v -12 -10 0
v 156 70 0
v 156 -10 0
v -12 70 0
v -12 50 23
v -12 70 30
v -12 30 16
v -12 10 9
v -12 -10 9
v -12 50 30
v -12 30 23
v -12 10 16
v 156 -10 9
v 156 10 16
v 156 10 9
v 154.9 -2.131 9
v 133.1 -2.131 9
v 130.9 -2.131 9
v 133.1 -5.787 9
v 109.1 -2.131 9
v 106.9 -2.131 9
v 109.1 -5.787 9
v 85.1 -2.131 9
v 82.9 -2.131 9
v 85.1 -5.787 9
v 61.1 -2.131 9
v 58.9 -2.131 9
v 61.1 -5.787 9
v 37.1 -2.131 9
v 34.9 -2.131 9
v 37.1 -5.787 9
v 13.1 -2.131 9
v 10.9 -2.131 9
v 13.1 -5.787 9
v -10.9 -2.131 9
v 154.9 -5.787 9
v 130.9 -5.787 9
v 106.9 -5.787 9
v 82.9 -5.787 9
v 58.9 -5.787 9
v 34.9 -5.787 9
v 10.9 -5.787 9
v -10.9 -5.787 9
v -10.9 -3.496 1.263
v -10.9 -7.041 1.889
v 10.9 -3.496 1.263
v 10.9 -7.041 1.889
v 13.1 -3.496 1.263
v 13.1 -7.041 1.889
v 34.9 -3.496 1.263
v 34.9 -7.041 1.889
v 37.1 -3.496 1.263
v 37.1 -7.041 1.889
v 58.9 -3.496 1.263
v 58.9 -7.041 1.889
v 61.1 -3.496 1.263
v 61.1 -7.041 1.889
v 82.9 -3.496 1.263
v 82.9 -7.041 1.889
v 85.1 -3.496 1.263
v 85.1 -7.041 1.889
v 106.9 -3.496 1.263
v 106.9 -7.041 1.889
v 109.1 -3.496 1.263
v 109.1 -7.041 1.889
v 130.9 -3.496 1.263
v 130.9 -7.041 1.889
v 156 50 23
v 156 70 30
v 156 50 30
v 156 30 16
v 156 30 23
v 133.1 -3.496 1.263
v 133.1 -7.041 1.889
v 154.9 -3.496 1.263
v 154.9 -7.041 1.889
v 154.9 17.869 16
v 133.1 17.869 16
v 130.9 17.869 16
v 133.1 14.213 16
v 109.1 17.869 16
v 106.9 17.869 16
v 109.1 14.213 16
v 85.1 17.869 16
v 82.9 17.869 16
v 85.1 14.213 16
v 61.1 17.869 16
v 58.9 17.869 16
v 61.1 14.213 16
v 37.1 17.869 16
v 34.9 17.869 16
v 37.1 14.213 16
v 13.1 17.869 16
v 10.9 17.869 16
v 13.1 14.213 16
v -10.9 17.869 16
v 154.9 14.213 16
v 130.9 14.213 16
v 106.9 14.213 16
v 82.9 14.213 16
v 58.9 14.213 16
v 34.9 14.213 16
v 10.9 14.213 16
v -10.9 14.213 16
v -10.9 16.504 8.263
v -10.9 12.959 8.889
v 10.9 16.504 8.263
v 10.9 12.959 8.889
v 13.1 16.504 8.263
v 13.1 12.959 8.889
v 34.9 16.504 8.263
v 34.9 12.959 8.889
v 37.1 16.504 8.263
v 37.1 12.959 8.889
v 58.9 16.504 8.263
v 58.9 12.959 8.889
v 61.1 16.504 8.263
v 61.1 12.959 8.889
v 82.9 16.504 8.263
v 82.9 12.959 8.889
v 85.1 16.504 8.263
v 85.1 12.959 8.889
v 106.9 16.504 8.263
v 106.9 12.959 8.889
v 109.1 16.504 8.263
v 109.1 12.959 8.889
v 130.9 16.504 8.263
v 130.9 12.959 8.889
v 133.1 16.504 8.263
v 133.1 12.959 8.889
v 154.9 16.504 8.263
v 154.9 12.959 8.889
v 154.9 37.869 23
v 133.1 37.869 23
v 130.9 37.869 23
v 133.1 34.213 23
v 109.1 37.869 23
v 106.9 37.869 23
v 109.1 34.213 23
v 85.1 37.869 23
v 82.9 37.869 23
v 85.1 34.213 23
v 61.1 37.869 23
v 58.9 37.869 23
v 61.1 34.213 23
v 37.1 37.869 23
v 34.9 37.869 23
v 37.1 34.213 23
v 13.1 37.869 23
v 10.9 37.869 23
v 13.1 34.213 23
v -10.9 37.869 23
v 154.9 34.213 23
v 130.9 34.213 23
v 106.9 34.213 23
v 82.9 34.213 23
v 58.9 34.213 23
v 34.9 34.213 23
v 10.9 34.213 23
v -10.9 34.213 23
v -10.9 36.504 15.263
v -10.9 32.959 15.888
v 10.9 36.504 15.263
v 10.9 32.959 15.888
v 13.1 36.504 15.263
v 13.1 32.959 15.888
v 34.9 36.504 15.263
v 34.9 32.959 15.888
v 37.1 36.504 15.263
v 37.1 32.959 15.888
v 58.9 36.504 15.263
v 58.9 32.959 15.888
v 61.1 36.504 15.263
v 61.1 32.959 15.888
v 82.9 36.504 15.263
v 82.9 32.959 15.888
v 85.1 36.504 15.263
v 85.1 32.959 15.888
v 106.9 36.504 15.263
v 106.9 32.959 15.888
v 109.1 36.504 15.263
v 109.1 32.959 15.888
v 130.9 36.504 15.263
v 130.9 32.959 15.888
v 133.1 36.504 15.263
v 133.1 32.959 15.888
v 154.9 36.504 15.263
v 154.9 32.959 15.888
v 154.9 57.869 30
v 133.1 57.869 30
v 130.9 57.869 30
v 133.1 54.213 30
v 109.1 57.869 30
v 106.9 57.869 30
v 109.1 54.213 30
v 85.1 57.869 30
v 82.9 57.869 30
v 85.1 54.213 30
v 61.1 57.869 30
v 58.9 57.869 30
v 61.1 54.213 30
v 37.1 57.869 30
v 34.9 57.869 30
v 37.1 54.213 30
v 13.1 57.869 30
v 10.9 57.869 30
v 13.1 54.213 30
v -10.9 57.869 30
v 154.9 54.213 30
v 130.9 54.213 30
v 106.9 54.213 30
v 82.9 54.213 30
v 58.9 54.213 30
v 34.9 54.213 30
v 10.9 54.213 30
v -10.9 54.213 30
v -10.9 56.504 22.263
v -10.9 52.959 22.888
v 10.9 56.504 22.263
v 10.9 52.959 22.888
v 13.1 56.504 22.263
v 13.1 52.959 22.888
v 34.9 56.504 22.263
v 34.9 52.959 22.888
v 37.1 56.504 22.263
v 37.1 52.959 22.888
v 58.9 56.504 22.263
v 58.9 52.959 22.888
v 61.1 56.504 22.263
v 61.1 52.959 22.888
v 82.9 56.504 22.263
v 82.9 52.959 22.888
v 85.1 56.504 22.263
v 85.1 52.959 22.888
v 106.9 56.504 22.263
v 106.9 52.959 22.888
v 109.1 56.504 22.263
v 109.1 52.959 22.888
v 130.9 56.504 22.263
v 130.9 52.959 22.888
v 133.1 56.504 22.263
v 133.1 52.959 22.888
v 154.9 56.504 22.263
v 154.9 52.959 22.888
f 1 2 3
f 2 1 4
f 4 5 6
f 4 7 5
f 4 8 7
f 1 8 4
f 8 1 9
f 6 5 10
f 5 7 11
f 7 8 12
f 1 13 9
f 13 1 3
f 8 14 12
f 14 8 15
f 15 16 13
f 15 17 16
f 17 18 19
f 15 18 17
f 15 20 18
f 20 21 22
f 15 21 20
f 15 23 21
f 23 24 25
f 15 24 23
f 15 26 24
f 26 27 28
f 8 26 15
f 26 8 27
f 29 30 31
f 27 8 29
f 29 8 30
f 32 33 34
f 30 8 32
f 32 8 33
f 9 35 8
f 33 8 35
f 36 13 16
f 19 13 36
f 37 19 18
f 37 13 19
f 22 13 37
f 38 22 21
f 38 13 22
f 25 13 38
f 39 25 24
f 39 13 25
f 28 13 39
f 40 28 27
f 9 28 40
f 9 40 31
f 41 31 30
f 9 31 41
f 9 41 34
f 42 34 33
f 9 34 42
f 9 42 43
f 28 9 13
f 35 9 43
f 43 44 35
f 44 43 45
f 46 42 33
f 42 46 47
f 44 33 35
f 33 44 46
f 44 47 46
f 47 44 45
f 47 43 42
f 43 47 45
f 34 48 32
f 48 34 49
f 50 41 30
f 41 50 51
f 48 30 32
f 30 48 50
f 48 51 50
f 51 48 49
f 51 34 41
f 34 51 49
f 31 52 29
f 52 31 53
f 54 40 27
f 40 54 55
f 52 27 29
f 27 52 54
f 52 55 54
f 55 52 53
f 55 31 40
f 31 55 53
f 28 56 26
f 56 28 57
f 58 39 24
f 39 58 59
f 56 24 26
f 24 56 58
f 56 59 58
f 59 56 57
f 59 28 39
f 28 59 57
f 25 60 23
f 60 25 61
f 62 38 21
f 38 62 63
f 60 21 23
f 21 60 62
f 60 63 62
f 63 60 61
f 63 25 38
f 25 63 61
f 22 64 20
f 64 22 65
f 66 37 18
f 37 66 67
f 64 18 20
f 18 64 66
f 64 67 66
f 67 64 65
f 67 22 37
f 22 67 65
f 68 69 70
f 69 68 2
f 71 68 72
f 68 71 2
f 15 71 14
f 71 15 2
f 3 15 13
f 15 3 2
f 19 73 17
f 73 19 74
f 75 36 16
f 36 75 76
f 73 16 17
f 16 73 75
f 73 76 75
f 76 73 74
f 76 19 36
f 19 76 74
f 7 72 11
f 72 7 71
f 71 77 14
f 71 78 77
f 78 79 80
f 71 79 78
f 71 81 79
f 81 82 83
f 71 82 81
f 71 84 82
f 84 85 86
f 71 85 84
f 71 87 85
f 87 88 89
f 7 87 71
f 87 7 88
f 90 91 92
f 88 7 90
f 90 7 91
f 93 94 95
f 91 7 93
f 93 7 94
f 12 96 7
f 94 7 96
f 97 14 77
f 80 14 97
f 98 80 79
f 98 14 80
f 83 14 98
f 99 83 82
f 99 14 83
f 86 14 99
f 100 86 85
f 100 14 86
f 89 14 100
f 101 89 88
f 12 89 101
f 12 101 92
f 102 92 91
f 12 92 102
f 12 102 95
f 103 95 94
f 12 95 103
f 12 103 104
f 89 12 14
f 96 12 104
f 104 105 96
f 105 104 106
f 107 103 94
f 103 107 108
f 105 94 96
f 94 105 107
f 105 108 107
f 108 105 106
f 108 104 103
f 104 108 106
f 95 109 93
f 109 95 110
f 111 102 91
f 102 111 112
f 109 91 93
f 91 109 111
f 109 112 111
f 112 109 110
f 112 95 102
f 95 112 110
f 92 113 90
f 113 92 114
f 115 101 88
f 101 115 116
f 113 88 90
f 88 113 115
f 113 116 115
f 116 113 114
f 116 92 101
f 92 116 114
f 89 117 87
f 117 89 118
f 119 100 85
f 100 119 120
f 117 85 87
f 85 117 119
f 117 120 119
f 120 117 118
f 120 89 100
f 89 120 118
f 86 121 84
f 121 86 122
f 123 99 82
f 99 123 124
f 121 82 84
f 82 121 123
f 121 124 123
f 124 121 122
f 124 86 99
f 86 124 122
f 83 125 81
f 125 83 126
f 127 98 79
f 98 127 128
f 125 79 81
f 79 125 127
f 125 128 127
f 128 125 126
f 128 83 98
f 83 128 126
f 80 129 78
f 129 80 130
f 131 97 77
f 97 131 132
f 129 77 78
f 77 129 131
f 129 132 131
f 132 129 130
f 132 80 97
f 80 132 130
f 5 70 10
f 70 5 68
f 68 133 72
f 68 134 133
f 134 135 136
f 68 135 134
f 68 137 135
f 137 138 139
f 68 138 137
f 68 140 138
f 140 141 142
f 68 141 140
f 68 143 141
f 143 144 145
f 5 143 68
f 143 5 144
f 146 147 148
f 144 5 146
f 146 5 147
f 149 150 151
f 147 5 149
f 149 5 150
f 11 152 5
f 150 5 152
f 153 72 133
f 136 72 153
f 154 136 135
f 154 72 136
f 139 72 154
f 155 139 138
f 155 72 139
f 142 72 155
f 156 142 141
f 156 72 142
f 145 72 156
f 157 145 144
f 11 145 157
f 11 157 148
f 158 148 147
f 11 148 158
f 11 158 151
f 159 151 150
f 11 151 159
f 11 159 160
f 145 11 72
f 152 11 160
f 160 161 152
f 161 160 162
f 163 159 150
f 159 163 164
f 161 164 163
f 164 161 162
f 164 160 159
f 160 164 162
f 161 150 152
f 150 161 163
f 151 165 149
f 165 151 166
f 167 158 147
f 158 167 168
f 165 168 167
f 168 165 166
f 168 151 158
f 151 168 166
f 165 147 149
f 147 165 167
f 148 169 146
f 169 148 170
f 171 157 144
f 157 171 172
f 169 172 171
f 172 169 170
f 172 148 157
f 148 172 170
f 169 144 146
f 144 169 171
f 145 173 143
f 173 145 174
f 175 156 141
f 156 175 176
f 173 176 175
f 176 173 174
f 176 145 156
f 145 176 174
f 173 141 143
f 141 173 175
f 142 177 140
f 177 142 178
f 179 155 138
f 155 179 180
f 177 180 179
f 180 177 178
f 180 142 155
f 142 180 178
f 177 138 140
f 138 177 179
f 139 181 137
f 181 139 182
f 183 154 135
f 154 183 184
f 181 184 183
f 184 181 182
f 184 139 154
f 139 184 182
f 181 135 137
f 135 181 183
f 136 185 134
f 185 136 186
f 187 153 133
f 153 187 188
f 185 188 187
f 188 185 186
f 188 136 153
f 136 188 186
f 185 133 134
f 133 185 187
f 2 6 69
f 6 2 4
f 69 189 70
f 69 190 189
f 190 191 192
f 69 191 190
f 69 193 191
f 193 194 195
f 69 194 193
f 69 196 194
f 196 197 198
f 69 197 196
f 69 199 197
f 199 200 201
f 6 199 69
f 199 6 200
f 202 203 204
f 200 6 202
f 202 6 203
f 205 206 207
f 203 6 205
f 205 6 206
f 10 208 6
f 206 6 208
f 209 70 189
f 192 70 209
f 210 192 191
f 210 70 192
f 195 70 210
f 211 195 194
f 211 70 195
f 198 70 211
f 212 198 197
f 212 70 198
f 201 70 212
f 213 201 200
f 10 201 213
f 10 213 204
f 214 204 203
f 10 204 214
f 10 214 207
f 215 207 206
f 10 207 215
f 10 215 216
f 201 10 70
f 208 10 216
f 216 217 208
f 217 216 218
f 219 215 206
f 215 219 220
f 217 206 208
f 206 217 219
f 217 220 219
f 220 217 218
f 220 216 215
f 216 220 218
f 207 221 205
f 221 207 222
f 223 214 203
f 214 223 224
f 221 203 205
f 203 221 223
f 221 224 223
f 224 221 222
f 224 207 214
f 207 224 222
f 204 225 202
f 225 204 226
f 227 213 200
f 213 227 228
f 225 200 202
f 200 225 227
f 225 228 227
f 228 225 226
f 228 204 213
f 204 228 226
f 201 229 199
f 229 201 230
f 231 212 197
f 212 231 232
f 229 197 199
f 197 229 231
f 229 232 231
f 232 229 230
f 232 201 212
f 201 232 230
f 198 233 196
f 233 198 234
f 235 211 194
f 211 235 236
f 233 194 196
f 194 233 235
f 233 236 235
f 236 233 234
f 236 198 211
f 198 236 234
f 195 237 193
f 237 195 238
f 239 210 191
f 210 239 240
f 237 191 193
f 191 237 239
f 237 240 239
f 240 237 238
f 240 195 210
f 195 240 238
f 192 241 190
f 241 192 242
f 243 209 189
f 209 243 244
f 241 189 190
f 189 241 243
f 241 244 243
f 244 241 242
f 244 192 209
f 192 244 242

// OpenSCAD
grid = [4, 7];


module cartridge_slot(h = 10.00, center = true) {
    cube([21.80, 3.60, h], center);
}

module cartridge_adapter(additional_h = 0.00,  center = true) {
    adapter_size = [24.00, 20.00, 9.00 + additional_h];
    slot_angle = 10.00;
    slot_height = 5.00;
    slot_offset = 4.40;
    
    difference() {
        linear_extrude(adapter_size[2])
            square([adapter_size[0], adapter_size[1]], center = true);
        
        translate([0, -slot_offset, adapter_size[2] - slot_height / 2])
            rotate([-slot_angle, 0, 0])
                cartridge_slot(slot_height * 2);
    }
}

for (y = [0:(grid[0] - 1)])
    for (x = [0:(grid[1] - 1)])
        translate([24.00 * x, 20.00 * y, 0])
            cartridge_adapter(7.00 * y);
